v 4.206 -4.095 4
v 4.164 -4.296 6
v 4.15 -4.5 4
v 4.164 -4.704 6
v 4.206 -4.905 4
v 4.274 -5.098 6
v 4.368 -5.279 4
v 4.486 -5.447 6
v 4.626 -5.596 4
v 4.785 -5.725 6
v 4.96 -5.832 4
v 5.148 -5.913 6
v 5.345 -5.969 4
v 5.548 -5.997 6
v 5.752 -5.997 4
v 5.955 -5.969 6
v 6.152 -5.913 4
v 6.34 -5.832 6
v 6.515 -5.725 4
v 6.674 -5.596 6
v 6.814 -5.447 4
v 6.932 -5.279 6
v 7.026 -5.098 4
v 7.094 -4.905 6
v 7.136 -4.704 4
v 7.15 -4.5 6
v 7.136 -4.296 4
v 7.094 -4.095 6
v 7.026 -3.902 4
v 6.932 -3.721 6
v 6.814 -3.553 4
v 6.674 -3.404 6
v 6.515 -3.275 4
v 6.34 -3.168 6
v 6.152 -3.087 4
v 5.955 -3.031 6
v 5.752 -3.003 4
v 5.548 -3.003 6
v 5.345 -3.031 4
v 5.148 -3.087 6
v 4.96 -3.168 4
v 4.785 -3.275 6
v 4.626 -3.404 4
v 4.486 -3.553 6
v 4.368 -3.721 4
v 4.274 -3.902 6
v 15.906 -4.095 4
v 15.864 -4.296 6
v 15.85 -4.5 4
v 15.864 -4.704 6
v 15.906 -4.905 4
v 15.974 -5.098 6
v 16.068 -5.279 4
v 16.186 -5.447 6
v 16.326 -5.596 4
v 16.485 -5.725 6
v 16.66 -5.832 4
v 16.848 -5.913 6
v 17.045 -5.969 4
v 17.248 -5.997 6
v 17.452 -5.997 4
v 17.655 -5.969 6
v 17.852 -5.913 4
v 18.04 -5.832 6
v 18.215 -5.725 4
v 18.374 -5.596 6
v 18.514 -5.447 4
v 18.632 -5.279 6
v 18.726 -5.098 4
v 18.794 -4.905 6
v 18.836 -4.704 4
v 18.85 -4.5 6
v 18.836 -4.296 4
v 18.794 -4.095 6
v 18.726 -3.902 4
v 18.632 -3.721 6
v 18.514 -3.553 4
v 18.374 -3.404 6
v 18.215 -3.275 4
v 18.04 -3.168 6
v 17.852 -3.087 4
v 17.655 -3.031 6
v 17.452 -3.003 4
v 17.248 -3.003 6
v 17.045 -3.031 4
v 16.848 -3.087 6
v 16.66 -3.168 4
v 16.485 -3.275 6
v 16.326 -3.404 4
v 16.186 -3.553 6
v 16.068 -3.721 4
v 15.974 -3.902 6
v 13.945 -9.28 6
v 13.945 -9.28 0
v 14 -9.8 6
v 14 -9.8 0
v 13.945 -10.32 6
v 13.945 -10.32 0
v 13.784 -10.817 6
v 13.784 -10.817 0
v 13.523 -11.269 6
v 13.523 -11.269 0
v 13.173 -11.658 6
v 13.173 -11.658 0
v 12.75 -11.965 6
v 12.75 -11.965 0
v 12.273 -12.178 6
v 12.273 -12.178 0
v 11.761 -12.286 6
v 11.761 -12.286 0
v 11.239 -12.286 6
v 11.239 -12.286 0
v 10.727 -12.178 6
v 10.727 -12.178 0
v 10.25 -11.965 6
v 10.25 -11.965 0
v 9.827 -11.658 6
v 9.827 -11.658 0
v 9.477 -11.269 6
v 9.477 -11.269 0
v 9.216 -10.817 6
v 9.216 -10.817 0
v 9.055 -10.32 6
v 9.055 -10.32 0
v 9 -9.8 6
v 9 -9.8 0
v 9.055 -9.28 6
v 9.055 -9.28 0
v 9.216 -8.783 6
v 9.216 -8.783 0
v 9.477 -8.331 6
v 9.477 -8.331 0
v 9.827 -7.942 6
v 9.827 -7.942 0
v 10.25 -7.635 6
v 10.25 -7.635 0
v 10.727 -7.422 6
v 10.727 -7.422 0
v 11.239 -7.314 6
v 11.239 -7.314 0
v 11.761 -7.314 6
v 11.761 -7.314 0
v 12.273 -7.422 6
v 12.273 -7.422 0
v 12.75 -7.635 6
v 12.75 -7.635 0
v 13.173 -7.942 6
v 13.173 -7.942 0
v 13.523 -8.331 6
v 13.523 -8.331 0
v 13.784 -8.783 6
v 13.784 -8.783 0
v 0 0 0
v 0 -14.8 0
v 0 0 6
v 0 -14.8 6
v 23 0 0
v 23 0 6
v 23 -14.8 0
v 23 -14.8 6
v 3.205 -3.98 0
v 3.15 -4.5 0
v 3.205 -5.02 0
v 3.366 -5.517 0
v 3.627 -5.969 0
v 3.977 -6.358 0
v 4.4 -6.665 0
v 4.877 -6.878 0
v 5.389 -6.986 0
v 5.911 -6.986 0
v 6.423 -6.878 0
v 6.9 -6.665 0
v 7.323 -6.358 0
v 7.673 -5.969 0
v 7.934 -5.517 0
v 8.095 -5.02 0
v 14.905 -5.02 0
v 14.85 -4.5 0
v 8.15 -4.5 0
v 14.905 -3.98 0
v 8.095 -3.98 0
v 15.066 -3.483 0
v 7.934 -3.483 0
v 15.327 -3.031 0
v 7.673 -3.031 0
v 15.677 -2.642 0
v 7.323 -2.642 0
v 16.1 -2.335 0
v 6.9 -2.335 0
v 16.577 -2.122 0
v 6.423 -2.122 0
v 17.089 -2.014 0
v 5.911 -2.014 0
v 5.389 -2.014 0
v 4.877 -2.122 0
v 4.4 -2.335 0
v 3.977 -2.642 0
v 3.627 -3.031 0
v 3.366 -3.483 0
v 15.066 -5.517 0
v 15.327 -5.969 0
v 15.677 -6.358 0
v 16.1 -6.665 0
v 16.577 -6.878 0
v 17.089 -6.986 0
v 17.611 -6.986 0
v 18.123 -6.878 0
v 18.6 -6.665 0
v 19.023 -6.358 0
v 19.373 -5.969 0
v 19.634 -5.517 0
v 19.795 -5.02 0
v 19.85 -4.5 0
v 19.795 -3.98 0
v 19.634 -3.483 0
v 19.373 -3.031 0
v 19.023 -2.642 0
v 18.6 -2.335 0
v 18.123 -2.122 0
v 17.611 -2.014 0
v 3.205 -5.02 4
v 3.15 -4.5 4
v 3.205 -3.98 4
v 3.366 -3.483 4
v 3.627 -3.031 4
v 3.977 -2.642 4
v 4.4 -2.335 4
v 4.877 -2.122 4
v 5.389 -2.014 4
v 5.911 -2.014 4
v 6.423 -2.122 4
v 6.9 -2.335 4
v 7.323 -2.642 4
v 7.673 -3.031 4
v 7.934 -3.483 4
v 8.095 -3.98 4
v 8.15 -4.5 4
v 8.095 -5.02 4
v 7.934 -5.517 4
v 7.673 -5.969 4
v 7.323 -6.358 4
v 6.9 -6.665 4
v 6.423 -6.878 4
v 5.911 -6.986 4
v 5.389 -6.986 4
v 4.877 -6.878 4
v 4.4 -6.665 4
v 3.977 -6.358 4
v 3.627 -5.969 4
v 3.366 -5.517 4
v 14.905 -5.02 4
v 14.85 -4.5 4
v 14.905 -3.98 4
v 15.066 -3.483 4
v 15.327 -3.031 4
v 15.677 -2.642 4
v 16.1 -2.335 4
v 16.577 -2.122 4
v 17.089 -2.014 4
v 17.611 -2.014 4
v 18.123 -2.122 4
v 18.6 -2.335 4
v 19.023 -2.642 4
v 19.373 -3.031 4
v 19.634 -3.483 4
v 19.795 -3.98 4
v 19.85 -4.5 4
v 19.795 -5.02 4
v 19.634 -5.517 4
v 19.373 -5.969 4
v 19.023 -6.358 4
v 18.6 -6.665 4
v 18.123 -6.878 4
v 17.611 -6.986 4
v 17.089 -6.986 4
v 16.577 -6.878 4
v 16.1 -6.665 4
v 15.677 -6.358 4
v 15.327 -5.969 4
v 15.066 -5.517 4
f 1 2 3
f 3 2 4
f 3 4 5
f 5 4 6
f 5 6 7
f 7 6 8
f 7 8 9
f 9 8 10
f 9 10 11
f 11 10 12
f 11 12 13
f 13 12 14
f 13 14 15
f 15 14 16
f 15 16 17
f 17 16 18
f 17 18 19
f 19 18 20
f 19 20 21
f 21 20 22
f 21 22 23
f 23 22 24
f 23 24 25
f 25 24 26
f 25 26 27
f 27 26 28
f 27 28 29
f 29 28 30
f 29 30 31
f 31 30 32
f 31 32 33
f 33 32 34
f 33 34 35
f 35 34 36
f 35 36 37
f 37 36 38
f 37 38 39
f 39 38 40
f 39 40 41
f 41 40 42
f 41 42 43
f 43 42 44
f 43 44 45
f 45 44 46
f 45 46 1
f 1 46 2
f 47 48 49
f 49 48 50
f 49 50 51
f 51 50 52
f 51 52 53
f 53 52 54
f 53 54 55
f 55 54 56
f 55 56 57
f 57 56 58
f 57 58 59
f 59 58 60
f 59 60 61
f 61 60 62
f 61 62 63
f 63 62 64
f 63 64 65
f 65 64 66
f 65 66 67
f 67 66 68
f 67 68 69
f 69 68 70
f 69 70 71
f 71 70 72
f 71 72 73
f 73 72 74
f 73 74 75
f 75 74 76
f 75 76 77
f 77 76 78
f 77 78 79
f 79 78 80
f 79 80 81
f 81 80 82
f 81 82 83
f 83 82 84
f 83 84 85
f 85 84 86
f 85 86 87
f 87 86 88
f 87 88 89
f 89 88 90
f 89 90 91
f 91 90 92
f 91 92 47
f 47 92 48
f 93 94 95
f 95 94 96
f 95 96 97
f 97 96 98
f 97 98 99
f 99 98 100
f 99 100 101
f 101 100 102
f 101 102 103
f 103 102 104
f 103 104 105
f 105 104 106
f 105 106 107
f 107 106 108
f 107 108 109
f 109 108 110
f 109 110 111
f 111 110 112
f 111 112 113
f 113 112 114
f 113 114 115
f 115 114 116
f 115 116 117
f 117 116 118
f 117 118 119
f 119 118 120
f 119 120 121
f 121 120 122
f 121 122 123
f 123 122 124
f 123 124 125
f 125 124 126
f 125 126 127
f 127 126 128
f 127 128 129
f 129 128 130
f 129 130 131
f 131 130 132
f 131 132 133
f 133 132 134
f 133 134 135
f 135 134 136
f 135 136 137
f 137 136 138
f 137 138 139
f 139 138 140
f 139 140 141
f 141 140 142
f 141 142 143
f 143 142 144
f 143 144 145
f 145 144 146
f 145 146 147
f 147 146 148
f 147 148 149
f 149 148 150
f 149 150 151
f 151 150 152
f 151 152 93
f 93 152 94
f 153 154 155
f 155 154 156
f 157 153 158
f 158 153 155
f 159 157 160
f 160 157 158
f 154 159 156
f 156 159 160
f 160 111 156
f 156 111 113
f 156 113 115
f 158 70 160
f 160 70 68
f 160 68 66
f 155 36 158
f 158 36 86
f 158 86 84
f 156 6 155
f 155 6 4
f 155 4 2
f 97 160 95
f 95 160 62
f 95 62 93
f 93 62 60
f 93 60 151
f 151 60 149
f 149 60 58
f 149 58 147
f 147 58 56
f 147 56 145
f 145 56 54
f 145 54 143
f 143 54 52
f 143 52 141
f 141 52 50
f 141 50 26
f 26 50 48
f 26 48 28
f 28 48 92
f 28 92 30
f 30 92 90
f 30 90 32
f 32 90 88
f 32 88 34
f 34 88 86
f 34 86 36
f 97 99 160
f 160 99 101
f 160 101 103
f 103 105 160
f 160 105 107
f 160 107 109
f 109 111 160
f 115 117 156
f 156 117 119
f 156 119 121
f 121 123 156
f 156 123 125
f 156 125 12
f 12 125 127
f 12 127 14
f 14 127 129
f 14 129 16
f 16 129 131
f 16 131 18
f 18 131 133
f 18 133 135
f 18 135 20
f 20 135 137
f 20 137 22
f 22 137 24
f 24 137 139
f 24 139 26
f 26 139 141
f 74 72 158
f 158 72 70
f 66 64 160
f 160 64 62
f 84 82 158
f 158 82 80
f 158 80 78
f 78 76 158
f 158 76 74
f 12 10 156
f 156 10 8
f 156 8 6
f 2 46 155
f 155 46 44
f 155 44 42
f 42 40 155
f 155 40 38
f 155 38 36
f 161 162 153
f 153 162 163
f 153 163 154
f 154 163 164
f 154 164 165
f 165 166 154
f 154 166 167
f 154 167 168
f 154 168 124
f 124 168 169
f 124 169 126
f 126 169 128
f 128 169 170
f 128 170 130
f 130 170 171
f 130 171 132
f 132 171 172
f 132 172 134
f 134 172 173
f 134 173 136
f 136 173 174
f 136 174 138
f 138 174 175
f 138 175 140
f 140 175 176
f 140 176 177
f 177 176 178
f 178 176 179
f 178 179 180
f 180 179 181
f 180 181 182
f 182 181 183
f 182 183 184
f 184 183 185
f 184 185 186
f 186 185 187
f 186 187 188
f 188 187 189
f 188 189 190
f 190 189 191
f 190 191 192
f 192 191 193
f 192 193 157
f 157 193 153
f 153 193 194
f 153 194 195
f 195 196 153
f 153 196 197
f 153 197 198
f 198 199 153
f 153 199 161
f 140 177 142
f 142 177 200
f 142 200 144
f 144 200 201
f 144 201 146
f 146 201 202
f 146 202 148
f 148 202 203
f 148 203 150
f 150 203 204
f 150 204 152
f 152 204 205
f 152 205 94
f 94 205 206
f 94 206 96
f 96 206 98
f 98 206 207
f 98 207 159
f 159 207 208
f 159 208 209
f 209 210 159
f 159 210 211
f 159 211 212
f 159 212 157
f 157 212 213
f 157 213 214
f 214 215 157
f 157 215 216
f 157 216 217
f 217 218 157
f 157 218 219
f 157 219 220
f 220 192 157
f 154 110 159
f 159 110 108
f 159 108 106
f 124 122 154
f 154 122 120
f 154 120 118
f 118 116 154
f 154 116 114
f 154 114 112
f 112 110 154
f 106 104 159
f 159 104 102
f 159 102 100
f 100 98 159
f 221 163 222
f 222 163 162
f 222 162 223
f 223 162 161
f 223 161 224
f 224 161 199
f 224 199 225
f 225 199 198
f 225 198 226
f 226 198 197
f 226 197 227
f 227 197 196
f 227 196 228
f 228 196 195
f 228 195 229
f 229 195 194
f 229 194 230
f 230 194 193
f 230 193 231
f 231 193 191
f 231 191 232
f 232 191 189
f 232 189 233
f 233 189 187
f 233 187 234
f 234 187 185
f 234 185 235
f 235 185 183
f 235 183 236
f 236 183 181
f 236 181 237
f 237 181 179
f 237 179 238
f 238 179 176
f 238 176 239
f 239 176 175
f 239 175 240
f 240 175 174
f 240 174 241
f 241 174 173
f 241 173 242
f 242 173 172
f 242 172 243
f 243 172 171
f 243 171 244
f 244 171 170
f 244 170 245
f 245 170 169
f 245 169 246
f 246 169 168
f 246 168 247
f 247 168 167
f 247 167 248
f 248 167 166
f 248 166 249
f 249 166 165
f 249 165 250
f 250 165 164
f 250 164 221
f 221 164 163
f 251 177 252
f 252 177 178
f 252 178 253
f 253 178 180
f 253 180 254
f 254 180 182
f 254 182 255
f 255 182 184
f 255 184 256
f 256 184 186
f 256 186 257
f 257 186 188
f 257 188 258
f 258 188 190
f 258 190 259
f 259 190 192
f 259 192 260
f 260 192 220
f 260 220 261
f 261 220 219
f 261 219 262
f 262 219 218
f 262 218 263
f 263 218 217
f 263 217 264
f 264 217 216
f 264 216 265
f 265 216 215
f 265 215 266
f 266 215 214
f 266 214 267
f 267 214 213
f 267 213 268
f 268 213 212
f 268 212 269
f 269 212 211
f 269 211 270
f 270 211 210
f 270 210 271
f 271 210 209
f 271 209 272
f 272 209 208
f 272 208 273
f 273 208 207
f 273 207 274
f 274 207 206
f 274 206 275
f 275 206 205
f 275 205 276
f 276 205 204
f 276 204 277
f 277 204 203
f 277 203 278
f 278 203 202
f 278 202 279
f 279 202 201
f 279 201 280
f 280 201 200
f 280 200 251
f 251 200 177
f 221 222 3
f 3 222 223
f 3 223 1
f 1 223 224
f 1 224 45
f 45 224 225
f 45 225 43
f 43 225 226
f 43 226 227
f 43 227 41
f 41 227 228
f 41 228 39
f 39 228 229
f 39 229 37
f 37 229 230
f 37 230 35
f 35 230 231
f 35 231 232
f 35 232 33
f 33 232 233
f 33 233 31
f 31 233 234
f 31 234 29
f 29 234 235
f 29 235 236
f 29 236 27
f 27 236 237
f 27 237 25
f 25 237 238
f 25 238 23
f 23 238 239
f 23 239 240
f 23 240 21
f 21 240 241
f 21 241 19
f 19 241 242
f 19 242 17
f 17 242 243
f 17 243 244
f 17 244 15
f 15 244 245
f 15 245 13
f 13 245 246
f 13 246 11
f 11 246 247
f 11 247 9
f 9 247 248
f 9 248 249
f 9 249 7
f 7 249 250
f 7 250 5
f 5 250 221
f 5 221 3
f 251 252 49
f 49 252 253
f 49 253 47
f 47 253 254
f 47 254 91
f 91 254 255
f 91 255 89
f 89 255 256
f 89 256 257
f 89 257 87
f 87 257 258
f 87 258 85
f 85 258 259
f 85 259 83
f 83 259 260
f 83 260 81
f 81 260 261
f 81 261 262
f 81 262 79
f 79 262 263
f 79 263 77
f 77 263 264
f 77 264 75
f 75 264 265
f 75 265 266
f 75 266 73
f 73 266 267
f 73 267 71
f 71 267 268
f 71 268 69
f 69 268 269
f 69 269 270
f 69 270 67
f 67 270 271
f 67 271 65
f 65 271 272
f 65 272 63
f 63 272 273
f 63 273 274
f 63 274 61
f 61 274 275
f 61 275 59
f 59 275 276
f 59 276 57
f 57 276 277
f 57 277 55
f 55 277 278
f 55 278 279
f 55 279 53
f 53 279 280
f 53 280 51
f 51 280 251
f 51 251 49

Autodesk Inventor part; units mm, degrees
ref_plane "YZ Plane" through (0, 0, 0) normal (1, 0, 0) x (0, 1, 0)
ref_plane "XZ Plane" through (0, 0, 0) normal (0, 1, 0) x (-1, 0, 0)
ref_plane "XY Plane" through (0, 0, 0) normal (0, 0, 1) x (1, 0, 0)
sketch "Sketch1" plane through (0, 0, 0) normal (0, 0, 1) x (1, 0, 0)
  line L0 (0, 0) -> (23, 0)
  line L1 (23, 0) -> (23, -14.8)
  line L2 (23, -14.8) -> (0, -14.8)
  line L3 (0, -14.8) -> (0, 0)
  circle A0 centre (5.65, -4.5) radius 1.5
  circle A1 centre (17.35, -4.5) radius 1.5
  circle A2 centre (11.5, -9.8) radius 2.5
  dimension "d0" = 23
  dimension "d1" = 14.8
  dimension "d2" = 4.5
  dimension "d3" = 11.7
  dimension "d4" = 5.65
  dimension "d5" = 5.65
  dimension "d6" = 11.5
  dimension "d7" = 5
  dimension "d8" = 3
  dimension "d9" = 3
  dimension "d10" = 5
extrude "Extrusion1" add sketch "Sketch1" along normal blind 6
sketch "Sketch2" plane through (0, 0, 0) normal (0, 0, -1) x (-1, 0, 0)
  circle A0 centre (-17.35, -4.5) radius 1.5 projected
  circle A1 centre (-17.35, -4.5) radius 2.5
  circle A2 centre (-5.65, -4.5) radius 1.5 projected
  circle A3 centre (-5.65, -4.5) radius 2.5
  point P0 (0, 0)
  dimension "d13" = 5
  dimension "d14" = 5
extrude "Extrusion2" cut sketch "Sketch2" against normal blind 4
equation "\"d4\" = -0.5 * d3 + 0.5 * d0"
equation "\"d5\" = d4"
equation "\"d6\" = 0.5 * d0"
equation "\"d9\" = d8"
equation "\"d14\" = d13"
properties part number "cam m6 replacement v01"
